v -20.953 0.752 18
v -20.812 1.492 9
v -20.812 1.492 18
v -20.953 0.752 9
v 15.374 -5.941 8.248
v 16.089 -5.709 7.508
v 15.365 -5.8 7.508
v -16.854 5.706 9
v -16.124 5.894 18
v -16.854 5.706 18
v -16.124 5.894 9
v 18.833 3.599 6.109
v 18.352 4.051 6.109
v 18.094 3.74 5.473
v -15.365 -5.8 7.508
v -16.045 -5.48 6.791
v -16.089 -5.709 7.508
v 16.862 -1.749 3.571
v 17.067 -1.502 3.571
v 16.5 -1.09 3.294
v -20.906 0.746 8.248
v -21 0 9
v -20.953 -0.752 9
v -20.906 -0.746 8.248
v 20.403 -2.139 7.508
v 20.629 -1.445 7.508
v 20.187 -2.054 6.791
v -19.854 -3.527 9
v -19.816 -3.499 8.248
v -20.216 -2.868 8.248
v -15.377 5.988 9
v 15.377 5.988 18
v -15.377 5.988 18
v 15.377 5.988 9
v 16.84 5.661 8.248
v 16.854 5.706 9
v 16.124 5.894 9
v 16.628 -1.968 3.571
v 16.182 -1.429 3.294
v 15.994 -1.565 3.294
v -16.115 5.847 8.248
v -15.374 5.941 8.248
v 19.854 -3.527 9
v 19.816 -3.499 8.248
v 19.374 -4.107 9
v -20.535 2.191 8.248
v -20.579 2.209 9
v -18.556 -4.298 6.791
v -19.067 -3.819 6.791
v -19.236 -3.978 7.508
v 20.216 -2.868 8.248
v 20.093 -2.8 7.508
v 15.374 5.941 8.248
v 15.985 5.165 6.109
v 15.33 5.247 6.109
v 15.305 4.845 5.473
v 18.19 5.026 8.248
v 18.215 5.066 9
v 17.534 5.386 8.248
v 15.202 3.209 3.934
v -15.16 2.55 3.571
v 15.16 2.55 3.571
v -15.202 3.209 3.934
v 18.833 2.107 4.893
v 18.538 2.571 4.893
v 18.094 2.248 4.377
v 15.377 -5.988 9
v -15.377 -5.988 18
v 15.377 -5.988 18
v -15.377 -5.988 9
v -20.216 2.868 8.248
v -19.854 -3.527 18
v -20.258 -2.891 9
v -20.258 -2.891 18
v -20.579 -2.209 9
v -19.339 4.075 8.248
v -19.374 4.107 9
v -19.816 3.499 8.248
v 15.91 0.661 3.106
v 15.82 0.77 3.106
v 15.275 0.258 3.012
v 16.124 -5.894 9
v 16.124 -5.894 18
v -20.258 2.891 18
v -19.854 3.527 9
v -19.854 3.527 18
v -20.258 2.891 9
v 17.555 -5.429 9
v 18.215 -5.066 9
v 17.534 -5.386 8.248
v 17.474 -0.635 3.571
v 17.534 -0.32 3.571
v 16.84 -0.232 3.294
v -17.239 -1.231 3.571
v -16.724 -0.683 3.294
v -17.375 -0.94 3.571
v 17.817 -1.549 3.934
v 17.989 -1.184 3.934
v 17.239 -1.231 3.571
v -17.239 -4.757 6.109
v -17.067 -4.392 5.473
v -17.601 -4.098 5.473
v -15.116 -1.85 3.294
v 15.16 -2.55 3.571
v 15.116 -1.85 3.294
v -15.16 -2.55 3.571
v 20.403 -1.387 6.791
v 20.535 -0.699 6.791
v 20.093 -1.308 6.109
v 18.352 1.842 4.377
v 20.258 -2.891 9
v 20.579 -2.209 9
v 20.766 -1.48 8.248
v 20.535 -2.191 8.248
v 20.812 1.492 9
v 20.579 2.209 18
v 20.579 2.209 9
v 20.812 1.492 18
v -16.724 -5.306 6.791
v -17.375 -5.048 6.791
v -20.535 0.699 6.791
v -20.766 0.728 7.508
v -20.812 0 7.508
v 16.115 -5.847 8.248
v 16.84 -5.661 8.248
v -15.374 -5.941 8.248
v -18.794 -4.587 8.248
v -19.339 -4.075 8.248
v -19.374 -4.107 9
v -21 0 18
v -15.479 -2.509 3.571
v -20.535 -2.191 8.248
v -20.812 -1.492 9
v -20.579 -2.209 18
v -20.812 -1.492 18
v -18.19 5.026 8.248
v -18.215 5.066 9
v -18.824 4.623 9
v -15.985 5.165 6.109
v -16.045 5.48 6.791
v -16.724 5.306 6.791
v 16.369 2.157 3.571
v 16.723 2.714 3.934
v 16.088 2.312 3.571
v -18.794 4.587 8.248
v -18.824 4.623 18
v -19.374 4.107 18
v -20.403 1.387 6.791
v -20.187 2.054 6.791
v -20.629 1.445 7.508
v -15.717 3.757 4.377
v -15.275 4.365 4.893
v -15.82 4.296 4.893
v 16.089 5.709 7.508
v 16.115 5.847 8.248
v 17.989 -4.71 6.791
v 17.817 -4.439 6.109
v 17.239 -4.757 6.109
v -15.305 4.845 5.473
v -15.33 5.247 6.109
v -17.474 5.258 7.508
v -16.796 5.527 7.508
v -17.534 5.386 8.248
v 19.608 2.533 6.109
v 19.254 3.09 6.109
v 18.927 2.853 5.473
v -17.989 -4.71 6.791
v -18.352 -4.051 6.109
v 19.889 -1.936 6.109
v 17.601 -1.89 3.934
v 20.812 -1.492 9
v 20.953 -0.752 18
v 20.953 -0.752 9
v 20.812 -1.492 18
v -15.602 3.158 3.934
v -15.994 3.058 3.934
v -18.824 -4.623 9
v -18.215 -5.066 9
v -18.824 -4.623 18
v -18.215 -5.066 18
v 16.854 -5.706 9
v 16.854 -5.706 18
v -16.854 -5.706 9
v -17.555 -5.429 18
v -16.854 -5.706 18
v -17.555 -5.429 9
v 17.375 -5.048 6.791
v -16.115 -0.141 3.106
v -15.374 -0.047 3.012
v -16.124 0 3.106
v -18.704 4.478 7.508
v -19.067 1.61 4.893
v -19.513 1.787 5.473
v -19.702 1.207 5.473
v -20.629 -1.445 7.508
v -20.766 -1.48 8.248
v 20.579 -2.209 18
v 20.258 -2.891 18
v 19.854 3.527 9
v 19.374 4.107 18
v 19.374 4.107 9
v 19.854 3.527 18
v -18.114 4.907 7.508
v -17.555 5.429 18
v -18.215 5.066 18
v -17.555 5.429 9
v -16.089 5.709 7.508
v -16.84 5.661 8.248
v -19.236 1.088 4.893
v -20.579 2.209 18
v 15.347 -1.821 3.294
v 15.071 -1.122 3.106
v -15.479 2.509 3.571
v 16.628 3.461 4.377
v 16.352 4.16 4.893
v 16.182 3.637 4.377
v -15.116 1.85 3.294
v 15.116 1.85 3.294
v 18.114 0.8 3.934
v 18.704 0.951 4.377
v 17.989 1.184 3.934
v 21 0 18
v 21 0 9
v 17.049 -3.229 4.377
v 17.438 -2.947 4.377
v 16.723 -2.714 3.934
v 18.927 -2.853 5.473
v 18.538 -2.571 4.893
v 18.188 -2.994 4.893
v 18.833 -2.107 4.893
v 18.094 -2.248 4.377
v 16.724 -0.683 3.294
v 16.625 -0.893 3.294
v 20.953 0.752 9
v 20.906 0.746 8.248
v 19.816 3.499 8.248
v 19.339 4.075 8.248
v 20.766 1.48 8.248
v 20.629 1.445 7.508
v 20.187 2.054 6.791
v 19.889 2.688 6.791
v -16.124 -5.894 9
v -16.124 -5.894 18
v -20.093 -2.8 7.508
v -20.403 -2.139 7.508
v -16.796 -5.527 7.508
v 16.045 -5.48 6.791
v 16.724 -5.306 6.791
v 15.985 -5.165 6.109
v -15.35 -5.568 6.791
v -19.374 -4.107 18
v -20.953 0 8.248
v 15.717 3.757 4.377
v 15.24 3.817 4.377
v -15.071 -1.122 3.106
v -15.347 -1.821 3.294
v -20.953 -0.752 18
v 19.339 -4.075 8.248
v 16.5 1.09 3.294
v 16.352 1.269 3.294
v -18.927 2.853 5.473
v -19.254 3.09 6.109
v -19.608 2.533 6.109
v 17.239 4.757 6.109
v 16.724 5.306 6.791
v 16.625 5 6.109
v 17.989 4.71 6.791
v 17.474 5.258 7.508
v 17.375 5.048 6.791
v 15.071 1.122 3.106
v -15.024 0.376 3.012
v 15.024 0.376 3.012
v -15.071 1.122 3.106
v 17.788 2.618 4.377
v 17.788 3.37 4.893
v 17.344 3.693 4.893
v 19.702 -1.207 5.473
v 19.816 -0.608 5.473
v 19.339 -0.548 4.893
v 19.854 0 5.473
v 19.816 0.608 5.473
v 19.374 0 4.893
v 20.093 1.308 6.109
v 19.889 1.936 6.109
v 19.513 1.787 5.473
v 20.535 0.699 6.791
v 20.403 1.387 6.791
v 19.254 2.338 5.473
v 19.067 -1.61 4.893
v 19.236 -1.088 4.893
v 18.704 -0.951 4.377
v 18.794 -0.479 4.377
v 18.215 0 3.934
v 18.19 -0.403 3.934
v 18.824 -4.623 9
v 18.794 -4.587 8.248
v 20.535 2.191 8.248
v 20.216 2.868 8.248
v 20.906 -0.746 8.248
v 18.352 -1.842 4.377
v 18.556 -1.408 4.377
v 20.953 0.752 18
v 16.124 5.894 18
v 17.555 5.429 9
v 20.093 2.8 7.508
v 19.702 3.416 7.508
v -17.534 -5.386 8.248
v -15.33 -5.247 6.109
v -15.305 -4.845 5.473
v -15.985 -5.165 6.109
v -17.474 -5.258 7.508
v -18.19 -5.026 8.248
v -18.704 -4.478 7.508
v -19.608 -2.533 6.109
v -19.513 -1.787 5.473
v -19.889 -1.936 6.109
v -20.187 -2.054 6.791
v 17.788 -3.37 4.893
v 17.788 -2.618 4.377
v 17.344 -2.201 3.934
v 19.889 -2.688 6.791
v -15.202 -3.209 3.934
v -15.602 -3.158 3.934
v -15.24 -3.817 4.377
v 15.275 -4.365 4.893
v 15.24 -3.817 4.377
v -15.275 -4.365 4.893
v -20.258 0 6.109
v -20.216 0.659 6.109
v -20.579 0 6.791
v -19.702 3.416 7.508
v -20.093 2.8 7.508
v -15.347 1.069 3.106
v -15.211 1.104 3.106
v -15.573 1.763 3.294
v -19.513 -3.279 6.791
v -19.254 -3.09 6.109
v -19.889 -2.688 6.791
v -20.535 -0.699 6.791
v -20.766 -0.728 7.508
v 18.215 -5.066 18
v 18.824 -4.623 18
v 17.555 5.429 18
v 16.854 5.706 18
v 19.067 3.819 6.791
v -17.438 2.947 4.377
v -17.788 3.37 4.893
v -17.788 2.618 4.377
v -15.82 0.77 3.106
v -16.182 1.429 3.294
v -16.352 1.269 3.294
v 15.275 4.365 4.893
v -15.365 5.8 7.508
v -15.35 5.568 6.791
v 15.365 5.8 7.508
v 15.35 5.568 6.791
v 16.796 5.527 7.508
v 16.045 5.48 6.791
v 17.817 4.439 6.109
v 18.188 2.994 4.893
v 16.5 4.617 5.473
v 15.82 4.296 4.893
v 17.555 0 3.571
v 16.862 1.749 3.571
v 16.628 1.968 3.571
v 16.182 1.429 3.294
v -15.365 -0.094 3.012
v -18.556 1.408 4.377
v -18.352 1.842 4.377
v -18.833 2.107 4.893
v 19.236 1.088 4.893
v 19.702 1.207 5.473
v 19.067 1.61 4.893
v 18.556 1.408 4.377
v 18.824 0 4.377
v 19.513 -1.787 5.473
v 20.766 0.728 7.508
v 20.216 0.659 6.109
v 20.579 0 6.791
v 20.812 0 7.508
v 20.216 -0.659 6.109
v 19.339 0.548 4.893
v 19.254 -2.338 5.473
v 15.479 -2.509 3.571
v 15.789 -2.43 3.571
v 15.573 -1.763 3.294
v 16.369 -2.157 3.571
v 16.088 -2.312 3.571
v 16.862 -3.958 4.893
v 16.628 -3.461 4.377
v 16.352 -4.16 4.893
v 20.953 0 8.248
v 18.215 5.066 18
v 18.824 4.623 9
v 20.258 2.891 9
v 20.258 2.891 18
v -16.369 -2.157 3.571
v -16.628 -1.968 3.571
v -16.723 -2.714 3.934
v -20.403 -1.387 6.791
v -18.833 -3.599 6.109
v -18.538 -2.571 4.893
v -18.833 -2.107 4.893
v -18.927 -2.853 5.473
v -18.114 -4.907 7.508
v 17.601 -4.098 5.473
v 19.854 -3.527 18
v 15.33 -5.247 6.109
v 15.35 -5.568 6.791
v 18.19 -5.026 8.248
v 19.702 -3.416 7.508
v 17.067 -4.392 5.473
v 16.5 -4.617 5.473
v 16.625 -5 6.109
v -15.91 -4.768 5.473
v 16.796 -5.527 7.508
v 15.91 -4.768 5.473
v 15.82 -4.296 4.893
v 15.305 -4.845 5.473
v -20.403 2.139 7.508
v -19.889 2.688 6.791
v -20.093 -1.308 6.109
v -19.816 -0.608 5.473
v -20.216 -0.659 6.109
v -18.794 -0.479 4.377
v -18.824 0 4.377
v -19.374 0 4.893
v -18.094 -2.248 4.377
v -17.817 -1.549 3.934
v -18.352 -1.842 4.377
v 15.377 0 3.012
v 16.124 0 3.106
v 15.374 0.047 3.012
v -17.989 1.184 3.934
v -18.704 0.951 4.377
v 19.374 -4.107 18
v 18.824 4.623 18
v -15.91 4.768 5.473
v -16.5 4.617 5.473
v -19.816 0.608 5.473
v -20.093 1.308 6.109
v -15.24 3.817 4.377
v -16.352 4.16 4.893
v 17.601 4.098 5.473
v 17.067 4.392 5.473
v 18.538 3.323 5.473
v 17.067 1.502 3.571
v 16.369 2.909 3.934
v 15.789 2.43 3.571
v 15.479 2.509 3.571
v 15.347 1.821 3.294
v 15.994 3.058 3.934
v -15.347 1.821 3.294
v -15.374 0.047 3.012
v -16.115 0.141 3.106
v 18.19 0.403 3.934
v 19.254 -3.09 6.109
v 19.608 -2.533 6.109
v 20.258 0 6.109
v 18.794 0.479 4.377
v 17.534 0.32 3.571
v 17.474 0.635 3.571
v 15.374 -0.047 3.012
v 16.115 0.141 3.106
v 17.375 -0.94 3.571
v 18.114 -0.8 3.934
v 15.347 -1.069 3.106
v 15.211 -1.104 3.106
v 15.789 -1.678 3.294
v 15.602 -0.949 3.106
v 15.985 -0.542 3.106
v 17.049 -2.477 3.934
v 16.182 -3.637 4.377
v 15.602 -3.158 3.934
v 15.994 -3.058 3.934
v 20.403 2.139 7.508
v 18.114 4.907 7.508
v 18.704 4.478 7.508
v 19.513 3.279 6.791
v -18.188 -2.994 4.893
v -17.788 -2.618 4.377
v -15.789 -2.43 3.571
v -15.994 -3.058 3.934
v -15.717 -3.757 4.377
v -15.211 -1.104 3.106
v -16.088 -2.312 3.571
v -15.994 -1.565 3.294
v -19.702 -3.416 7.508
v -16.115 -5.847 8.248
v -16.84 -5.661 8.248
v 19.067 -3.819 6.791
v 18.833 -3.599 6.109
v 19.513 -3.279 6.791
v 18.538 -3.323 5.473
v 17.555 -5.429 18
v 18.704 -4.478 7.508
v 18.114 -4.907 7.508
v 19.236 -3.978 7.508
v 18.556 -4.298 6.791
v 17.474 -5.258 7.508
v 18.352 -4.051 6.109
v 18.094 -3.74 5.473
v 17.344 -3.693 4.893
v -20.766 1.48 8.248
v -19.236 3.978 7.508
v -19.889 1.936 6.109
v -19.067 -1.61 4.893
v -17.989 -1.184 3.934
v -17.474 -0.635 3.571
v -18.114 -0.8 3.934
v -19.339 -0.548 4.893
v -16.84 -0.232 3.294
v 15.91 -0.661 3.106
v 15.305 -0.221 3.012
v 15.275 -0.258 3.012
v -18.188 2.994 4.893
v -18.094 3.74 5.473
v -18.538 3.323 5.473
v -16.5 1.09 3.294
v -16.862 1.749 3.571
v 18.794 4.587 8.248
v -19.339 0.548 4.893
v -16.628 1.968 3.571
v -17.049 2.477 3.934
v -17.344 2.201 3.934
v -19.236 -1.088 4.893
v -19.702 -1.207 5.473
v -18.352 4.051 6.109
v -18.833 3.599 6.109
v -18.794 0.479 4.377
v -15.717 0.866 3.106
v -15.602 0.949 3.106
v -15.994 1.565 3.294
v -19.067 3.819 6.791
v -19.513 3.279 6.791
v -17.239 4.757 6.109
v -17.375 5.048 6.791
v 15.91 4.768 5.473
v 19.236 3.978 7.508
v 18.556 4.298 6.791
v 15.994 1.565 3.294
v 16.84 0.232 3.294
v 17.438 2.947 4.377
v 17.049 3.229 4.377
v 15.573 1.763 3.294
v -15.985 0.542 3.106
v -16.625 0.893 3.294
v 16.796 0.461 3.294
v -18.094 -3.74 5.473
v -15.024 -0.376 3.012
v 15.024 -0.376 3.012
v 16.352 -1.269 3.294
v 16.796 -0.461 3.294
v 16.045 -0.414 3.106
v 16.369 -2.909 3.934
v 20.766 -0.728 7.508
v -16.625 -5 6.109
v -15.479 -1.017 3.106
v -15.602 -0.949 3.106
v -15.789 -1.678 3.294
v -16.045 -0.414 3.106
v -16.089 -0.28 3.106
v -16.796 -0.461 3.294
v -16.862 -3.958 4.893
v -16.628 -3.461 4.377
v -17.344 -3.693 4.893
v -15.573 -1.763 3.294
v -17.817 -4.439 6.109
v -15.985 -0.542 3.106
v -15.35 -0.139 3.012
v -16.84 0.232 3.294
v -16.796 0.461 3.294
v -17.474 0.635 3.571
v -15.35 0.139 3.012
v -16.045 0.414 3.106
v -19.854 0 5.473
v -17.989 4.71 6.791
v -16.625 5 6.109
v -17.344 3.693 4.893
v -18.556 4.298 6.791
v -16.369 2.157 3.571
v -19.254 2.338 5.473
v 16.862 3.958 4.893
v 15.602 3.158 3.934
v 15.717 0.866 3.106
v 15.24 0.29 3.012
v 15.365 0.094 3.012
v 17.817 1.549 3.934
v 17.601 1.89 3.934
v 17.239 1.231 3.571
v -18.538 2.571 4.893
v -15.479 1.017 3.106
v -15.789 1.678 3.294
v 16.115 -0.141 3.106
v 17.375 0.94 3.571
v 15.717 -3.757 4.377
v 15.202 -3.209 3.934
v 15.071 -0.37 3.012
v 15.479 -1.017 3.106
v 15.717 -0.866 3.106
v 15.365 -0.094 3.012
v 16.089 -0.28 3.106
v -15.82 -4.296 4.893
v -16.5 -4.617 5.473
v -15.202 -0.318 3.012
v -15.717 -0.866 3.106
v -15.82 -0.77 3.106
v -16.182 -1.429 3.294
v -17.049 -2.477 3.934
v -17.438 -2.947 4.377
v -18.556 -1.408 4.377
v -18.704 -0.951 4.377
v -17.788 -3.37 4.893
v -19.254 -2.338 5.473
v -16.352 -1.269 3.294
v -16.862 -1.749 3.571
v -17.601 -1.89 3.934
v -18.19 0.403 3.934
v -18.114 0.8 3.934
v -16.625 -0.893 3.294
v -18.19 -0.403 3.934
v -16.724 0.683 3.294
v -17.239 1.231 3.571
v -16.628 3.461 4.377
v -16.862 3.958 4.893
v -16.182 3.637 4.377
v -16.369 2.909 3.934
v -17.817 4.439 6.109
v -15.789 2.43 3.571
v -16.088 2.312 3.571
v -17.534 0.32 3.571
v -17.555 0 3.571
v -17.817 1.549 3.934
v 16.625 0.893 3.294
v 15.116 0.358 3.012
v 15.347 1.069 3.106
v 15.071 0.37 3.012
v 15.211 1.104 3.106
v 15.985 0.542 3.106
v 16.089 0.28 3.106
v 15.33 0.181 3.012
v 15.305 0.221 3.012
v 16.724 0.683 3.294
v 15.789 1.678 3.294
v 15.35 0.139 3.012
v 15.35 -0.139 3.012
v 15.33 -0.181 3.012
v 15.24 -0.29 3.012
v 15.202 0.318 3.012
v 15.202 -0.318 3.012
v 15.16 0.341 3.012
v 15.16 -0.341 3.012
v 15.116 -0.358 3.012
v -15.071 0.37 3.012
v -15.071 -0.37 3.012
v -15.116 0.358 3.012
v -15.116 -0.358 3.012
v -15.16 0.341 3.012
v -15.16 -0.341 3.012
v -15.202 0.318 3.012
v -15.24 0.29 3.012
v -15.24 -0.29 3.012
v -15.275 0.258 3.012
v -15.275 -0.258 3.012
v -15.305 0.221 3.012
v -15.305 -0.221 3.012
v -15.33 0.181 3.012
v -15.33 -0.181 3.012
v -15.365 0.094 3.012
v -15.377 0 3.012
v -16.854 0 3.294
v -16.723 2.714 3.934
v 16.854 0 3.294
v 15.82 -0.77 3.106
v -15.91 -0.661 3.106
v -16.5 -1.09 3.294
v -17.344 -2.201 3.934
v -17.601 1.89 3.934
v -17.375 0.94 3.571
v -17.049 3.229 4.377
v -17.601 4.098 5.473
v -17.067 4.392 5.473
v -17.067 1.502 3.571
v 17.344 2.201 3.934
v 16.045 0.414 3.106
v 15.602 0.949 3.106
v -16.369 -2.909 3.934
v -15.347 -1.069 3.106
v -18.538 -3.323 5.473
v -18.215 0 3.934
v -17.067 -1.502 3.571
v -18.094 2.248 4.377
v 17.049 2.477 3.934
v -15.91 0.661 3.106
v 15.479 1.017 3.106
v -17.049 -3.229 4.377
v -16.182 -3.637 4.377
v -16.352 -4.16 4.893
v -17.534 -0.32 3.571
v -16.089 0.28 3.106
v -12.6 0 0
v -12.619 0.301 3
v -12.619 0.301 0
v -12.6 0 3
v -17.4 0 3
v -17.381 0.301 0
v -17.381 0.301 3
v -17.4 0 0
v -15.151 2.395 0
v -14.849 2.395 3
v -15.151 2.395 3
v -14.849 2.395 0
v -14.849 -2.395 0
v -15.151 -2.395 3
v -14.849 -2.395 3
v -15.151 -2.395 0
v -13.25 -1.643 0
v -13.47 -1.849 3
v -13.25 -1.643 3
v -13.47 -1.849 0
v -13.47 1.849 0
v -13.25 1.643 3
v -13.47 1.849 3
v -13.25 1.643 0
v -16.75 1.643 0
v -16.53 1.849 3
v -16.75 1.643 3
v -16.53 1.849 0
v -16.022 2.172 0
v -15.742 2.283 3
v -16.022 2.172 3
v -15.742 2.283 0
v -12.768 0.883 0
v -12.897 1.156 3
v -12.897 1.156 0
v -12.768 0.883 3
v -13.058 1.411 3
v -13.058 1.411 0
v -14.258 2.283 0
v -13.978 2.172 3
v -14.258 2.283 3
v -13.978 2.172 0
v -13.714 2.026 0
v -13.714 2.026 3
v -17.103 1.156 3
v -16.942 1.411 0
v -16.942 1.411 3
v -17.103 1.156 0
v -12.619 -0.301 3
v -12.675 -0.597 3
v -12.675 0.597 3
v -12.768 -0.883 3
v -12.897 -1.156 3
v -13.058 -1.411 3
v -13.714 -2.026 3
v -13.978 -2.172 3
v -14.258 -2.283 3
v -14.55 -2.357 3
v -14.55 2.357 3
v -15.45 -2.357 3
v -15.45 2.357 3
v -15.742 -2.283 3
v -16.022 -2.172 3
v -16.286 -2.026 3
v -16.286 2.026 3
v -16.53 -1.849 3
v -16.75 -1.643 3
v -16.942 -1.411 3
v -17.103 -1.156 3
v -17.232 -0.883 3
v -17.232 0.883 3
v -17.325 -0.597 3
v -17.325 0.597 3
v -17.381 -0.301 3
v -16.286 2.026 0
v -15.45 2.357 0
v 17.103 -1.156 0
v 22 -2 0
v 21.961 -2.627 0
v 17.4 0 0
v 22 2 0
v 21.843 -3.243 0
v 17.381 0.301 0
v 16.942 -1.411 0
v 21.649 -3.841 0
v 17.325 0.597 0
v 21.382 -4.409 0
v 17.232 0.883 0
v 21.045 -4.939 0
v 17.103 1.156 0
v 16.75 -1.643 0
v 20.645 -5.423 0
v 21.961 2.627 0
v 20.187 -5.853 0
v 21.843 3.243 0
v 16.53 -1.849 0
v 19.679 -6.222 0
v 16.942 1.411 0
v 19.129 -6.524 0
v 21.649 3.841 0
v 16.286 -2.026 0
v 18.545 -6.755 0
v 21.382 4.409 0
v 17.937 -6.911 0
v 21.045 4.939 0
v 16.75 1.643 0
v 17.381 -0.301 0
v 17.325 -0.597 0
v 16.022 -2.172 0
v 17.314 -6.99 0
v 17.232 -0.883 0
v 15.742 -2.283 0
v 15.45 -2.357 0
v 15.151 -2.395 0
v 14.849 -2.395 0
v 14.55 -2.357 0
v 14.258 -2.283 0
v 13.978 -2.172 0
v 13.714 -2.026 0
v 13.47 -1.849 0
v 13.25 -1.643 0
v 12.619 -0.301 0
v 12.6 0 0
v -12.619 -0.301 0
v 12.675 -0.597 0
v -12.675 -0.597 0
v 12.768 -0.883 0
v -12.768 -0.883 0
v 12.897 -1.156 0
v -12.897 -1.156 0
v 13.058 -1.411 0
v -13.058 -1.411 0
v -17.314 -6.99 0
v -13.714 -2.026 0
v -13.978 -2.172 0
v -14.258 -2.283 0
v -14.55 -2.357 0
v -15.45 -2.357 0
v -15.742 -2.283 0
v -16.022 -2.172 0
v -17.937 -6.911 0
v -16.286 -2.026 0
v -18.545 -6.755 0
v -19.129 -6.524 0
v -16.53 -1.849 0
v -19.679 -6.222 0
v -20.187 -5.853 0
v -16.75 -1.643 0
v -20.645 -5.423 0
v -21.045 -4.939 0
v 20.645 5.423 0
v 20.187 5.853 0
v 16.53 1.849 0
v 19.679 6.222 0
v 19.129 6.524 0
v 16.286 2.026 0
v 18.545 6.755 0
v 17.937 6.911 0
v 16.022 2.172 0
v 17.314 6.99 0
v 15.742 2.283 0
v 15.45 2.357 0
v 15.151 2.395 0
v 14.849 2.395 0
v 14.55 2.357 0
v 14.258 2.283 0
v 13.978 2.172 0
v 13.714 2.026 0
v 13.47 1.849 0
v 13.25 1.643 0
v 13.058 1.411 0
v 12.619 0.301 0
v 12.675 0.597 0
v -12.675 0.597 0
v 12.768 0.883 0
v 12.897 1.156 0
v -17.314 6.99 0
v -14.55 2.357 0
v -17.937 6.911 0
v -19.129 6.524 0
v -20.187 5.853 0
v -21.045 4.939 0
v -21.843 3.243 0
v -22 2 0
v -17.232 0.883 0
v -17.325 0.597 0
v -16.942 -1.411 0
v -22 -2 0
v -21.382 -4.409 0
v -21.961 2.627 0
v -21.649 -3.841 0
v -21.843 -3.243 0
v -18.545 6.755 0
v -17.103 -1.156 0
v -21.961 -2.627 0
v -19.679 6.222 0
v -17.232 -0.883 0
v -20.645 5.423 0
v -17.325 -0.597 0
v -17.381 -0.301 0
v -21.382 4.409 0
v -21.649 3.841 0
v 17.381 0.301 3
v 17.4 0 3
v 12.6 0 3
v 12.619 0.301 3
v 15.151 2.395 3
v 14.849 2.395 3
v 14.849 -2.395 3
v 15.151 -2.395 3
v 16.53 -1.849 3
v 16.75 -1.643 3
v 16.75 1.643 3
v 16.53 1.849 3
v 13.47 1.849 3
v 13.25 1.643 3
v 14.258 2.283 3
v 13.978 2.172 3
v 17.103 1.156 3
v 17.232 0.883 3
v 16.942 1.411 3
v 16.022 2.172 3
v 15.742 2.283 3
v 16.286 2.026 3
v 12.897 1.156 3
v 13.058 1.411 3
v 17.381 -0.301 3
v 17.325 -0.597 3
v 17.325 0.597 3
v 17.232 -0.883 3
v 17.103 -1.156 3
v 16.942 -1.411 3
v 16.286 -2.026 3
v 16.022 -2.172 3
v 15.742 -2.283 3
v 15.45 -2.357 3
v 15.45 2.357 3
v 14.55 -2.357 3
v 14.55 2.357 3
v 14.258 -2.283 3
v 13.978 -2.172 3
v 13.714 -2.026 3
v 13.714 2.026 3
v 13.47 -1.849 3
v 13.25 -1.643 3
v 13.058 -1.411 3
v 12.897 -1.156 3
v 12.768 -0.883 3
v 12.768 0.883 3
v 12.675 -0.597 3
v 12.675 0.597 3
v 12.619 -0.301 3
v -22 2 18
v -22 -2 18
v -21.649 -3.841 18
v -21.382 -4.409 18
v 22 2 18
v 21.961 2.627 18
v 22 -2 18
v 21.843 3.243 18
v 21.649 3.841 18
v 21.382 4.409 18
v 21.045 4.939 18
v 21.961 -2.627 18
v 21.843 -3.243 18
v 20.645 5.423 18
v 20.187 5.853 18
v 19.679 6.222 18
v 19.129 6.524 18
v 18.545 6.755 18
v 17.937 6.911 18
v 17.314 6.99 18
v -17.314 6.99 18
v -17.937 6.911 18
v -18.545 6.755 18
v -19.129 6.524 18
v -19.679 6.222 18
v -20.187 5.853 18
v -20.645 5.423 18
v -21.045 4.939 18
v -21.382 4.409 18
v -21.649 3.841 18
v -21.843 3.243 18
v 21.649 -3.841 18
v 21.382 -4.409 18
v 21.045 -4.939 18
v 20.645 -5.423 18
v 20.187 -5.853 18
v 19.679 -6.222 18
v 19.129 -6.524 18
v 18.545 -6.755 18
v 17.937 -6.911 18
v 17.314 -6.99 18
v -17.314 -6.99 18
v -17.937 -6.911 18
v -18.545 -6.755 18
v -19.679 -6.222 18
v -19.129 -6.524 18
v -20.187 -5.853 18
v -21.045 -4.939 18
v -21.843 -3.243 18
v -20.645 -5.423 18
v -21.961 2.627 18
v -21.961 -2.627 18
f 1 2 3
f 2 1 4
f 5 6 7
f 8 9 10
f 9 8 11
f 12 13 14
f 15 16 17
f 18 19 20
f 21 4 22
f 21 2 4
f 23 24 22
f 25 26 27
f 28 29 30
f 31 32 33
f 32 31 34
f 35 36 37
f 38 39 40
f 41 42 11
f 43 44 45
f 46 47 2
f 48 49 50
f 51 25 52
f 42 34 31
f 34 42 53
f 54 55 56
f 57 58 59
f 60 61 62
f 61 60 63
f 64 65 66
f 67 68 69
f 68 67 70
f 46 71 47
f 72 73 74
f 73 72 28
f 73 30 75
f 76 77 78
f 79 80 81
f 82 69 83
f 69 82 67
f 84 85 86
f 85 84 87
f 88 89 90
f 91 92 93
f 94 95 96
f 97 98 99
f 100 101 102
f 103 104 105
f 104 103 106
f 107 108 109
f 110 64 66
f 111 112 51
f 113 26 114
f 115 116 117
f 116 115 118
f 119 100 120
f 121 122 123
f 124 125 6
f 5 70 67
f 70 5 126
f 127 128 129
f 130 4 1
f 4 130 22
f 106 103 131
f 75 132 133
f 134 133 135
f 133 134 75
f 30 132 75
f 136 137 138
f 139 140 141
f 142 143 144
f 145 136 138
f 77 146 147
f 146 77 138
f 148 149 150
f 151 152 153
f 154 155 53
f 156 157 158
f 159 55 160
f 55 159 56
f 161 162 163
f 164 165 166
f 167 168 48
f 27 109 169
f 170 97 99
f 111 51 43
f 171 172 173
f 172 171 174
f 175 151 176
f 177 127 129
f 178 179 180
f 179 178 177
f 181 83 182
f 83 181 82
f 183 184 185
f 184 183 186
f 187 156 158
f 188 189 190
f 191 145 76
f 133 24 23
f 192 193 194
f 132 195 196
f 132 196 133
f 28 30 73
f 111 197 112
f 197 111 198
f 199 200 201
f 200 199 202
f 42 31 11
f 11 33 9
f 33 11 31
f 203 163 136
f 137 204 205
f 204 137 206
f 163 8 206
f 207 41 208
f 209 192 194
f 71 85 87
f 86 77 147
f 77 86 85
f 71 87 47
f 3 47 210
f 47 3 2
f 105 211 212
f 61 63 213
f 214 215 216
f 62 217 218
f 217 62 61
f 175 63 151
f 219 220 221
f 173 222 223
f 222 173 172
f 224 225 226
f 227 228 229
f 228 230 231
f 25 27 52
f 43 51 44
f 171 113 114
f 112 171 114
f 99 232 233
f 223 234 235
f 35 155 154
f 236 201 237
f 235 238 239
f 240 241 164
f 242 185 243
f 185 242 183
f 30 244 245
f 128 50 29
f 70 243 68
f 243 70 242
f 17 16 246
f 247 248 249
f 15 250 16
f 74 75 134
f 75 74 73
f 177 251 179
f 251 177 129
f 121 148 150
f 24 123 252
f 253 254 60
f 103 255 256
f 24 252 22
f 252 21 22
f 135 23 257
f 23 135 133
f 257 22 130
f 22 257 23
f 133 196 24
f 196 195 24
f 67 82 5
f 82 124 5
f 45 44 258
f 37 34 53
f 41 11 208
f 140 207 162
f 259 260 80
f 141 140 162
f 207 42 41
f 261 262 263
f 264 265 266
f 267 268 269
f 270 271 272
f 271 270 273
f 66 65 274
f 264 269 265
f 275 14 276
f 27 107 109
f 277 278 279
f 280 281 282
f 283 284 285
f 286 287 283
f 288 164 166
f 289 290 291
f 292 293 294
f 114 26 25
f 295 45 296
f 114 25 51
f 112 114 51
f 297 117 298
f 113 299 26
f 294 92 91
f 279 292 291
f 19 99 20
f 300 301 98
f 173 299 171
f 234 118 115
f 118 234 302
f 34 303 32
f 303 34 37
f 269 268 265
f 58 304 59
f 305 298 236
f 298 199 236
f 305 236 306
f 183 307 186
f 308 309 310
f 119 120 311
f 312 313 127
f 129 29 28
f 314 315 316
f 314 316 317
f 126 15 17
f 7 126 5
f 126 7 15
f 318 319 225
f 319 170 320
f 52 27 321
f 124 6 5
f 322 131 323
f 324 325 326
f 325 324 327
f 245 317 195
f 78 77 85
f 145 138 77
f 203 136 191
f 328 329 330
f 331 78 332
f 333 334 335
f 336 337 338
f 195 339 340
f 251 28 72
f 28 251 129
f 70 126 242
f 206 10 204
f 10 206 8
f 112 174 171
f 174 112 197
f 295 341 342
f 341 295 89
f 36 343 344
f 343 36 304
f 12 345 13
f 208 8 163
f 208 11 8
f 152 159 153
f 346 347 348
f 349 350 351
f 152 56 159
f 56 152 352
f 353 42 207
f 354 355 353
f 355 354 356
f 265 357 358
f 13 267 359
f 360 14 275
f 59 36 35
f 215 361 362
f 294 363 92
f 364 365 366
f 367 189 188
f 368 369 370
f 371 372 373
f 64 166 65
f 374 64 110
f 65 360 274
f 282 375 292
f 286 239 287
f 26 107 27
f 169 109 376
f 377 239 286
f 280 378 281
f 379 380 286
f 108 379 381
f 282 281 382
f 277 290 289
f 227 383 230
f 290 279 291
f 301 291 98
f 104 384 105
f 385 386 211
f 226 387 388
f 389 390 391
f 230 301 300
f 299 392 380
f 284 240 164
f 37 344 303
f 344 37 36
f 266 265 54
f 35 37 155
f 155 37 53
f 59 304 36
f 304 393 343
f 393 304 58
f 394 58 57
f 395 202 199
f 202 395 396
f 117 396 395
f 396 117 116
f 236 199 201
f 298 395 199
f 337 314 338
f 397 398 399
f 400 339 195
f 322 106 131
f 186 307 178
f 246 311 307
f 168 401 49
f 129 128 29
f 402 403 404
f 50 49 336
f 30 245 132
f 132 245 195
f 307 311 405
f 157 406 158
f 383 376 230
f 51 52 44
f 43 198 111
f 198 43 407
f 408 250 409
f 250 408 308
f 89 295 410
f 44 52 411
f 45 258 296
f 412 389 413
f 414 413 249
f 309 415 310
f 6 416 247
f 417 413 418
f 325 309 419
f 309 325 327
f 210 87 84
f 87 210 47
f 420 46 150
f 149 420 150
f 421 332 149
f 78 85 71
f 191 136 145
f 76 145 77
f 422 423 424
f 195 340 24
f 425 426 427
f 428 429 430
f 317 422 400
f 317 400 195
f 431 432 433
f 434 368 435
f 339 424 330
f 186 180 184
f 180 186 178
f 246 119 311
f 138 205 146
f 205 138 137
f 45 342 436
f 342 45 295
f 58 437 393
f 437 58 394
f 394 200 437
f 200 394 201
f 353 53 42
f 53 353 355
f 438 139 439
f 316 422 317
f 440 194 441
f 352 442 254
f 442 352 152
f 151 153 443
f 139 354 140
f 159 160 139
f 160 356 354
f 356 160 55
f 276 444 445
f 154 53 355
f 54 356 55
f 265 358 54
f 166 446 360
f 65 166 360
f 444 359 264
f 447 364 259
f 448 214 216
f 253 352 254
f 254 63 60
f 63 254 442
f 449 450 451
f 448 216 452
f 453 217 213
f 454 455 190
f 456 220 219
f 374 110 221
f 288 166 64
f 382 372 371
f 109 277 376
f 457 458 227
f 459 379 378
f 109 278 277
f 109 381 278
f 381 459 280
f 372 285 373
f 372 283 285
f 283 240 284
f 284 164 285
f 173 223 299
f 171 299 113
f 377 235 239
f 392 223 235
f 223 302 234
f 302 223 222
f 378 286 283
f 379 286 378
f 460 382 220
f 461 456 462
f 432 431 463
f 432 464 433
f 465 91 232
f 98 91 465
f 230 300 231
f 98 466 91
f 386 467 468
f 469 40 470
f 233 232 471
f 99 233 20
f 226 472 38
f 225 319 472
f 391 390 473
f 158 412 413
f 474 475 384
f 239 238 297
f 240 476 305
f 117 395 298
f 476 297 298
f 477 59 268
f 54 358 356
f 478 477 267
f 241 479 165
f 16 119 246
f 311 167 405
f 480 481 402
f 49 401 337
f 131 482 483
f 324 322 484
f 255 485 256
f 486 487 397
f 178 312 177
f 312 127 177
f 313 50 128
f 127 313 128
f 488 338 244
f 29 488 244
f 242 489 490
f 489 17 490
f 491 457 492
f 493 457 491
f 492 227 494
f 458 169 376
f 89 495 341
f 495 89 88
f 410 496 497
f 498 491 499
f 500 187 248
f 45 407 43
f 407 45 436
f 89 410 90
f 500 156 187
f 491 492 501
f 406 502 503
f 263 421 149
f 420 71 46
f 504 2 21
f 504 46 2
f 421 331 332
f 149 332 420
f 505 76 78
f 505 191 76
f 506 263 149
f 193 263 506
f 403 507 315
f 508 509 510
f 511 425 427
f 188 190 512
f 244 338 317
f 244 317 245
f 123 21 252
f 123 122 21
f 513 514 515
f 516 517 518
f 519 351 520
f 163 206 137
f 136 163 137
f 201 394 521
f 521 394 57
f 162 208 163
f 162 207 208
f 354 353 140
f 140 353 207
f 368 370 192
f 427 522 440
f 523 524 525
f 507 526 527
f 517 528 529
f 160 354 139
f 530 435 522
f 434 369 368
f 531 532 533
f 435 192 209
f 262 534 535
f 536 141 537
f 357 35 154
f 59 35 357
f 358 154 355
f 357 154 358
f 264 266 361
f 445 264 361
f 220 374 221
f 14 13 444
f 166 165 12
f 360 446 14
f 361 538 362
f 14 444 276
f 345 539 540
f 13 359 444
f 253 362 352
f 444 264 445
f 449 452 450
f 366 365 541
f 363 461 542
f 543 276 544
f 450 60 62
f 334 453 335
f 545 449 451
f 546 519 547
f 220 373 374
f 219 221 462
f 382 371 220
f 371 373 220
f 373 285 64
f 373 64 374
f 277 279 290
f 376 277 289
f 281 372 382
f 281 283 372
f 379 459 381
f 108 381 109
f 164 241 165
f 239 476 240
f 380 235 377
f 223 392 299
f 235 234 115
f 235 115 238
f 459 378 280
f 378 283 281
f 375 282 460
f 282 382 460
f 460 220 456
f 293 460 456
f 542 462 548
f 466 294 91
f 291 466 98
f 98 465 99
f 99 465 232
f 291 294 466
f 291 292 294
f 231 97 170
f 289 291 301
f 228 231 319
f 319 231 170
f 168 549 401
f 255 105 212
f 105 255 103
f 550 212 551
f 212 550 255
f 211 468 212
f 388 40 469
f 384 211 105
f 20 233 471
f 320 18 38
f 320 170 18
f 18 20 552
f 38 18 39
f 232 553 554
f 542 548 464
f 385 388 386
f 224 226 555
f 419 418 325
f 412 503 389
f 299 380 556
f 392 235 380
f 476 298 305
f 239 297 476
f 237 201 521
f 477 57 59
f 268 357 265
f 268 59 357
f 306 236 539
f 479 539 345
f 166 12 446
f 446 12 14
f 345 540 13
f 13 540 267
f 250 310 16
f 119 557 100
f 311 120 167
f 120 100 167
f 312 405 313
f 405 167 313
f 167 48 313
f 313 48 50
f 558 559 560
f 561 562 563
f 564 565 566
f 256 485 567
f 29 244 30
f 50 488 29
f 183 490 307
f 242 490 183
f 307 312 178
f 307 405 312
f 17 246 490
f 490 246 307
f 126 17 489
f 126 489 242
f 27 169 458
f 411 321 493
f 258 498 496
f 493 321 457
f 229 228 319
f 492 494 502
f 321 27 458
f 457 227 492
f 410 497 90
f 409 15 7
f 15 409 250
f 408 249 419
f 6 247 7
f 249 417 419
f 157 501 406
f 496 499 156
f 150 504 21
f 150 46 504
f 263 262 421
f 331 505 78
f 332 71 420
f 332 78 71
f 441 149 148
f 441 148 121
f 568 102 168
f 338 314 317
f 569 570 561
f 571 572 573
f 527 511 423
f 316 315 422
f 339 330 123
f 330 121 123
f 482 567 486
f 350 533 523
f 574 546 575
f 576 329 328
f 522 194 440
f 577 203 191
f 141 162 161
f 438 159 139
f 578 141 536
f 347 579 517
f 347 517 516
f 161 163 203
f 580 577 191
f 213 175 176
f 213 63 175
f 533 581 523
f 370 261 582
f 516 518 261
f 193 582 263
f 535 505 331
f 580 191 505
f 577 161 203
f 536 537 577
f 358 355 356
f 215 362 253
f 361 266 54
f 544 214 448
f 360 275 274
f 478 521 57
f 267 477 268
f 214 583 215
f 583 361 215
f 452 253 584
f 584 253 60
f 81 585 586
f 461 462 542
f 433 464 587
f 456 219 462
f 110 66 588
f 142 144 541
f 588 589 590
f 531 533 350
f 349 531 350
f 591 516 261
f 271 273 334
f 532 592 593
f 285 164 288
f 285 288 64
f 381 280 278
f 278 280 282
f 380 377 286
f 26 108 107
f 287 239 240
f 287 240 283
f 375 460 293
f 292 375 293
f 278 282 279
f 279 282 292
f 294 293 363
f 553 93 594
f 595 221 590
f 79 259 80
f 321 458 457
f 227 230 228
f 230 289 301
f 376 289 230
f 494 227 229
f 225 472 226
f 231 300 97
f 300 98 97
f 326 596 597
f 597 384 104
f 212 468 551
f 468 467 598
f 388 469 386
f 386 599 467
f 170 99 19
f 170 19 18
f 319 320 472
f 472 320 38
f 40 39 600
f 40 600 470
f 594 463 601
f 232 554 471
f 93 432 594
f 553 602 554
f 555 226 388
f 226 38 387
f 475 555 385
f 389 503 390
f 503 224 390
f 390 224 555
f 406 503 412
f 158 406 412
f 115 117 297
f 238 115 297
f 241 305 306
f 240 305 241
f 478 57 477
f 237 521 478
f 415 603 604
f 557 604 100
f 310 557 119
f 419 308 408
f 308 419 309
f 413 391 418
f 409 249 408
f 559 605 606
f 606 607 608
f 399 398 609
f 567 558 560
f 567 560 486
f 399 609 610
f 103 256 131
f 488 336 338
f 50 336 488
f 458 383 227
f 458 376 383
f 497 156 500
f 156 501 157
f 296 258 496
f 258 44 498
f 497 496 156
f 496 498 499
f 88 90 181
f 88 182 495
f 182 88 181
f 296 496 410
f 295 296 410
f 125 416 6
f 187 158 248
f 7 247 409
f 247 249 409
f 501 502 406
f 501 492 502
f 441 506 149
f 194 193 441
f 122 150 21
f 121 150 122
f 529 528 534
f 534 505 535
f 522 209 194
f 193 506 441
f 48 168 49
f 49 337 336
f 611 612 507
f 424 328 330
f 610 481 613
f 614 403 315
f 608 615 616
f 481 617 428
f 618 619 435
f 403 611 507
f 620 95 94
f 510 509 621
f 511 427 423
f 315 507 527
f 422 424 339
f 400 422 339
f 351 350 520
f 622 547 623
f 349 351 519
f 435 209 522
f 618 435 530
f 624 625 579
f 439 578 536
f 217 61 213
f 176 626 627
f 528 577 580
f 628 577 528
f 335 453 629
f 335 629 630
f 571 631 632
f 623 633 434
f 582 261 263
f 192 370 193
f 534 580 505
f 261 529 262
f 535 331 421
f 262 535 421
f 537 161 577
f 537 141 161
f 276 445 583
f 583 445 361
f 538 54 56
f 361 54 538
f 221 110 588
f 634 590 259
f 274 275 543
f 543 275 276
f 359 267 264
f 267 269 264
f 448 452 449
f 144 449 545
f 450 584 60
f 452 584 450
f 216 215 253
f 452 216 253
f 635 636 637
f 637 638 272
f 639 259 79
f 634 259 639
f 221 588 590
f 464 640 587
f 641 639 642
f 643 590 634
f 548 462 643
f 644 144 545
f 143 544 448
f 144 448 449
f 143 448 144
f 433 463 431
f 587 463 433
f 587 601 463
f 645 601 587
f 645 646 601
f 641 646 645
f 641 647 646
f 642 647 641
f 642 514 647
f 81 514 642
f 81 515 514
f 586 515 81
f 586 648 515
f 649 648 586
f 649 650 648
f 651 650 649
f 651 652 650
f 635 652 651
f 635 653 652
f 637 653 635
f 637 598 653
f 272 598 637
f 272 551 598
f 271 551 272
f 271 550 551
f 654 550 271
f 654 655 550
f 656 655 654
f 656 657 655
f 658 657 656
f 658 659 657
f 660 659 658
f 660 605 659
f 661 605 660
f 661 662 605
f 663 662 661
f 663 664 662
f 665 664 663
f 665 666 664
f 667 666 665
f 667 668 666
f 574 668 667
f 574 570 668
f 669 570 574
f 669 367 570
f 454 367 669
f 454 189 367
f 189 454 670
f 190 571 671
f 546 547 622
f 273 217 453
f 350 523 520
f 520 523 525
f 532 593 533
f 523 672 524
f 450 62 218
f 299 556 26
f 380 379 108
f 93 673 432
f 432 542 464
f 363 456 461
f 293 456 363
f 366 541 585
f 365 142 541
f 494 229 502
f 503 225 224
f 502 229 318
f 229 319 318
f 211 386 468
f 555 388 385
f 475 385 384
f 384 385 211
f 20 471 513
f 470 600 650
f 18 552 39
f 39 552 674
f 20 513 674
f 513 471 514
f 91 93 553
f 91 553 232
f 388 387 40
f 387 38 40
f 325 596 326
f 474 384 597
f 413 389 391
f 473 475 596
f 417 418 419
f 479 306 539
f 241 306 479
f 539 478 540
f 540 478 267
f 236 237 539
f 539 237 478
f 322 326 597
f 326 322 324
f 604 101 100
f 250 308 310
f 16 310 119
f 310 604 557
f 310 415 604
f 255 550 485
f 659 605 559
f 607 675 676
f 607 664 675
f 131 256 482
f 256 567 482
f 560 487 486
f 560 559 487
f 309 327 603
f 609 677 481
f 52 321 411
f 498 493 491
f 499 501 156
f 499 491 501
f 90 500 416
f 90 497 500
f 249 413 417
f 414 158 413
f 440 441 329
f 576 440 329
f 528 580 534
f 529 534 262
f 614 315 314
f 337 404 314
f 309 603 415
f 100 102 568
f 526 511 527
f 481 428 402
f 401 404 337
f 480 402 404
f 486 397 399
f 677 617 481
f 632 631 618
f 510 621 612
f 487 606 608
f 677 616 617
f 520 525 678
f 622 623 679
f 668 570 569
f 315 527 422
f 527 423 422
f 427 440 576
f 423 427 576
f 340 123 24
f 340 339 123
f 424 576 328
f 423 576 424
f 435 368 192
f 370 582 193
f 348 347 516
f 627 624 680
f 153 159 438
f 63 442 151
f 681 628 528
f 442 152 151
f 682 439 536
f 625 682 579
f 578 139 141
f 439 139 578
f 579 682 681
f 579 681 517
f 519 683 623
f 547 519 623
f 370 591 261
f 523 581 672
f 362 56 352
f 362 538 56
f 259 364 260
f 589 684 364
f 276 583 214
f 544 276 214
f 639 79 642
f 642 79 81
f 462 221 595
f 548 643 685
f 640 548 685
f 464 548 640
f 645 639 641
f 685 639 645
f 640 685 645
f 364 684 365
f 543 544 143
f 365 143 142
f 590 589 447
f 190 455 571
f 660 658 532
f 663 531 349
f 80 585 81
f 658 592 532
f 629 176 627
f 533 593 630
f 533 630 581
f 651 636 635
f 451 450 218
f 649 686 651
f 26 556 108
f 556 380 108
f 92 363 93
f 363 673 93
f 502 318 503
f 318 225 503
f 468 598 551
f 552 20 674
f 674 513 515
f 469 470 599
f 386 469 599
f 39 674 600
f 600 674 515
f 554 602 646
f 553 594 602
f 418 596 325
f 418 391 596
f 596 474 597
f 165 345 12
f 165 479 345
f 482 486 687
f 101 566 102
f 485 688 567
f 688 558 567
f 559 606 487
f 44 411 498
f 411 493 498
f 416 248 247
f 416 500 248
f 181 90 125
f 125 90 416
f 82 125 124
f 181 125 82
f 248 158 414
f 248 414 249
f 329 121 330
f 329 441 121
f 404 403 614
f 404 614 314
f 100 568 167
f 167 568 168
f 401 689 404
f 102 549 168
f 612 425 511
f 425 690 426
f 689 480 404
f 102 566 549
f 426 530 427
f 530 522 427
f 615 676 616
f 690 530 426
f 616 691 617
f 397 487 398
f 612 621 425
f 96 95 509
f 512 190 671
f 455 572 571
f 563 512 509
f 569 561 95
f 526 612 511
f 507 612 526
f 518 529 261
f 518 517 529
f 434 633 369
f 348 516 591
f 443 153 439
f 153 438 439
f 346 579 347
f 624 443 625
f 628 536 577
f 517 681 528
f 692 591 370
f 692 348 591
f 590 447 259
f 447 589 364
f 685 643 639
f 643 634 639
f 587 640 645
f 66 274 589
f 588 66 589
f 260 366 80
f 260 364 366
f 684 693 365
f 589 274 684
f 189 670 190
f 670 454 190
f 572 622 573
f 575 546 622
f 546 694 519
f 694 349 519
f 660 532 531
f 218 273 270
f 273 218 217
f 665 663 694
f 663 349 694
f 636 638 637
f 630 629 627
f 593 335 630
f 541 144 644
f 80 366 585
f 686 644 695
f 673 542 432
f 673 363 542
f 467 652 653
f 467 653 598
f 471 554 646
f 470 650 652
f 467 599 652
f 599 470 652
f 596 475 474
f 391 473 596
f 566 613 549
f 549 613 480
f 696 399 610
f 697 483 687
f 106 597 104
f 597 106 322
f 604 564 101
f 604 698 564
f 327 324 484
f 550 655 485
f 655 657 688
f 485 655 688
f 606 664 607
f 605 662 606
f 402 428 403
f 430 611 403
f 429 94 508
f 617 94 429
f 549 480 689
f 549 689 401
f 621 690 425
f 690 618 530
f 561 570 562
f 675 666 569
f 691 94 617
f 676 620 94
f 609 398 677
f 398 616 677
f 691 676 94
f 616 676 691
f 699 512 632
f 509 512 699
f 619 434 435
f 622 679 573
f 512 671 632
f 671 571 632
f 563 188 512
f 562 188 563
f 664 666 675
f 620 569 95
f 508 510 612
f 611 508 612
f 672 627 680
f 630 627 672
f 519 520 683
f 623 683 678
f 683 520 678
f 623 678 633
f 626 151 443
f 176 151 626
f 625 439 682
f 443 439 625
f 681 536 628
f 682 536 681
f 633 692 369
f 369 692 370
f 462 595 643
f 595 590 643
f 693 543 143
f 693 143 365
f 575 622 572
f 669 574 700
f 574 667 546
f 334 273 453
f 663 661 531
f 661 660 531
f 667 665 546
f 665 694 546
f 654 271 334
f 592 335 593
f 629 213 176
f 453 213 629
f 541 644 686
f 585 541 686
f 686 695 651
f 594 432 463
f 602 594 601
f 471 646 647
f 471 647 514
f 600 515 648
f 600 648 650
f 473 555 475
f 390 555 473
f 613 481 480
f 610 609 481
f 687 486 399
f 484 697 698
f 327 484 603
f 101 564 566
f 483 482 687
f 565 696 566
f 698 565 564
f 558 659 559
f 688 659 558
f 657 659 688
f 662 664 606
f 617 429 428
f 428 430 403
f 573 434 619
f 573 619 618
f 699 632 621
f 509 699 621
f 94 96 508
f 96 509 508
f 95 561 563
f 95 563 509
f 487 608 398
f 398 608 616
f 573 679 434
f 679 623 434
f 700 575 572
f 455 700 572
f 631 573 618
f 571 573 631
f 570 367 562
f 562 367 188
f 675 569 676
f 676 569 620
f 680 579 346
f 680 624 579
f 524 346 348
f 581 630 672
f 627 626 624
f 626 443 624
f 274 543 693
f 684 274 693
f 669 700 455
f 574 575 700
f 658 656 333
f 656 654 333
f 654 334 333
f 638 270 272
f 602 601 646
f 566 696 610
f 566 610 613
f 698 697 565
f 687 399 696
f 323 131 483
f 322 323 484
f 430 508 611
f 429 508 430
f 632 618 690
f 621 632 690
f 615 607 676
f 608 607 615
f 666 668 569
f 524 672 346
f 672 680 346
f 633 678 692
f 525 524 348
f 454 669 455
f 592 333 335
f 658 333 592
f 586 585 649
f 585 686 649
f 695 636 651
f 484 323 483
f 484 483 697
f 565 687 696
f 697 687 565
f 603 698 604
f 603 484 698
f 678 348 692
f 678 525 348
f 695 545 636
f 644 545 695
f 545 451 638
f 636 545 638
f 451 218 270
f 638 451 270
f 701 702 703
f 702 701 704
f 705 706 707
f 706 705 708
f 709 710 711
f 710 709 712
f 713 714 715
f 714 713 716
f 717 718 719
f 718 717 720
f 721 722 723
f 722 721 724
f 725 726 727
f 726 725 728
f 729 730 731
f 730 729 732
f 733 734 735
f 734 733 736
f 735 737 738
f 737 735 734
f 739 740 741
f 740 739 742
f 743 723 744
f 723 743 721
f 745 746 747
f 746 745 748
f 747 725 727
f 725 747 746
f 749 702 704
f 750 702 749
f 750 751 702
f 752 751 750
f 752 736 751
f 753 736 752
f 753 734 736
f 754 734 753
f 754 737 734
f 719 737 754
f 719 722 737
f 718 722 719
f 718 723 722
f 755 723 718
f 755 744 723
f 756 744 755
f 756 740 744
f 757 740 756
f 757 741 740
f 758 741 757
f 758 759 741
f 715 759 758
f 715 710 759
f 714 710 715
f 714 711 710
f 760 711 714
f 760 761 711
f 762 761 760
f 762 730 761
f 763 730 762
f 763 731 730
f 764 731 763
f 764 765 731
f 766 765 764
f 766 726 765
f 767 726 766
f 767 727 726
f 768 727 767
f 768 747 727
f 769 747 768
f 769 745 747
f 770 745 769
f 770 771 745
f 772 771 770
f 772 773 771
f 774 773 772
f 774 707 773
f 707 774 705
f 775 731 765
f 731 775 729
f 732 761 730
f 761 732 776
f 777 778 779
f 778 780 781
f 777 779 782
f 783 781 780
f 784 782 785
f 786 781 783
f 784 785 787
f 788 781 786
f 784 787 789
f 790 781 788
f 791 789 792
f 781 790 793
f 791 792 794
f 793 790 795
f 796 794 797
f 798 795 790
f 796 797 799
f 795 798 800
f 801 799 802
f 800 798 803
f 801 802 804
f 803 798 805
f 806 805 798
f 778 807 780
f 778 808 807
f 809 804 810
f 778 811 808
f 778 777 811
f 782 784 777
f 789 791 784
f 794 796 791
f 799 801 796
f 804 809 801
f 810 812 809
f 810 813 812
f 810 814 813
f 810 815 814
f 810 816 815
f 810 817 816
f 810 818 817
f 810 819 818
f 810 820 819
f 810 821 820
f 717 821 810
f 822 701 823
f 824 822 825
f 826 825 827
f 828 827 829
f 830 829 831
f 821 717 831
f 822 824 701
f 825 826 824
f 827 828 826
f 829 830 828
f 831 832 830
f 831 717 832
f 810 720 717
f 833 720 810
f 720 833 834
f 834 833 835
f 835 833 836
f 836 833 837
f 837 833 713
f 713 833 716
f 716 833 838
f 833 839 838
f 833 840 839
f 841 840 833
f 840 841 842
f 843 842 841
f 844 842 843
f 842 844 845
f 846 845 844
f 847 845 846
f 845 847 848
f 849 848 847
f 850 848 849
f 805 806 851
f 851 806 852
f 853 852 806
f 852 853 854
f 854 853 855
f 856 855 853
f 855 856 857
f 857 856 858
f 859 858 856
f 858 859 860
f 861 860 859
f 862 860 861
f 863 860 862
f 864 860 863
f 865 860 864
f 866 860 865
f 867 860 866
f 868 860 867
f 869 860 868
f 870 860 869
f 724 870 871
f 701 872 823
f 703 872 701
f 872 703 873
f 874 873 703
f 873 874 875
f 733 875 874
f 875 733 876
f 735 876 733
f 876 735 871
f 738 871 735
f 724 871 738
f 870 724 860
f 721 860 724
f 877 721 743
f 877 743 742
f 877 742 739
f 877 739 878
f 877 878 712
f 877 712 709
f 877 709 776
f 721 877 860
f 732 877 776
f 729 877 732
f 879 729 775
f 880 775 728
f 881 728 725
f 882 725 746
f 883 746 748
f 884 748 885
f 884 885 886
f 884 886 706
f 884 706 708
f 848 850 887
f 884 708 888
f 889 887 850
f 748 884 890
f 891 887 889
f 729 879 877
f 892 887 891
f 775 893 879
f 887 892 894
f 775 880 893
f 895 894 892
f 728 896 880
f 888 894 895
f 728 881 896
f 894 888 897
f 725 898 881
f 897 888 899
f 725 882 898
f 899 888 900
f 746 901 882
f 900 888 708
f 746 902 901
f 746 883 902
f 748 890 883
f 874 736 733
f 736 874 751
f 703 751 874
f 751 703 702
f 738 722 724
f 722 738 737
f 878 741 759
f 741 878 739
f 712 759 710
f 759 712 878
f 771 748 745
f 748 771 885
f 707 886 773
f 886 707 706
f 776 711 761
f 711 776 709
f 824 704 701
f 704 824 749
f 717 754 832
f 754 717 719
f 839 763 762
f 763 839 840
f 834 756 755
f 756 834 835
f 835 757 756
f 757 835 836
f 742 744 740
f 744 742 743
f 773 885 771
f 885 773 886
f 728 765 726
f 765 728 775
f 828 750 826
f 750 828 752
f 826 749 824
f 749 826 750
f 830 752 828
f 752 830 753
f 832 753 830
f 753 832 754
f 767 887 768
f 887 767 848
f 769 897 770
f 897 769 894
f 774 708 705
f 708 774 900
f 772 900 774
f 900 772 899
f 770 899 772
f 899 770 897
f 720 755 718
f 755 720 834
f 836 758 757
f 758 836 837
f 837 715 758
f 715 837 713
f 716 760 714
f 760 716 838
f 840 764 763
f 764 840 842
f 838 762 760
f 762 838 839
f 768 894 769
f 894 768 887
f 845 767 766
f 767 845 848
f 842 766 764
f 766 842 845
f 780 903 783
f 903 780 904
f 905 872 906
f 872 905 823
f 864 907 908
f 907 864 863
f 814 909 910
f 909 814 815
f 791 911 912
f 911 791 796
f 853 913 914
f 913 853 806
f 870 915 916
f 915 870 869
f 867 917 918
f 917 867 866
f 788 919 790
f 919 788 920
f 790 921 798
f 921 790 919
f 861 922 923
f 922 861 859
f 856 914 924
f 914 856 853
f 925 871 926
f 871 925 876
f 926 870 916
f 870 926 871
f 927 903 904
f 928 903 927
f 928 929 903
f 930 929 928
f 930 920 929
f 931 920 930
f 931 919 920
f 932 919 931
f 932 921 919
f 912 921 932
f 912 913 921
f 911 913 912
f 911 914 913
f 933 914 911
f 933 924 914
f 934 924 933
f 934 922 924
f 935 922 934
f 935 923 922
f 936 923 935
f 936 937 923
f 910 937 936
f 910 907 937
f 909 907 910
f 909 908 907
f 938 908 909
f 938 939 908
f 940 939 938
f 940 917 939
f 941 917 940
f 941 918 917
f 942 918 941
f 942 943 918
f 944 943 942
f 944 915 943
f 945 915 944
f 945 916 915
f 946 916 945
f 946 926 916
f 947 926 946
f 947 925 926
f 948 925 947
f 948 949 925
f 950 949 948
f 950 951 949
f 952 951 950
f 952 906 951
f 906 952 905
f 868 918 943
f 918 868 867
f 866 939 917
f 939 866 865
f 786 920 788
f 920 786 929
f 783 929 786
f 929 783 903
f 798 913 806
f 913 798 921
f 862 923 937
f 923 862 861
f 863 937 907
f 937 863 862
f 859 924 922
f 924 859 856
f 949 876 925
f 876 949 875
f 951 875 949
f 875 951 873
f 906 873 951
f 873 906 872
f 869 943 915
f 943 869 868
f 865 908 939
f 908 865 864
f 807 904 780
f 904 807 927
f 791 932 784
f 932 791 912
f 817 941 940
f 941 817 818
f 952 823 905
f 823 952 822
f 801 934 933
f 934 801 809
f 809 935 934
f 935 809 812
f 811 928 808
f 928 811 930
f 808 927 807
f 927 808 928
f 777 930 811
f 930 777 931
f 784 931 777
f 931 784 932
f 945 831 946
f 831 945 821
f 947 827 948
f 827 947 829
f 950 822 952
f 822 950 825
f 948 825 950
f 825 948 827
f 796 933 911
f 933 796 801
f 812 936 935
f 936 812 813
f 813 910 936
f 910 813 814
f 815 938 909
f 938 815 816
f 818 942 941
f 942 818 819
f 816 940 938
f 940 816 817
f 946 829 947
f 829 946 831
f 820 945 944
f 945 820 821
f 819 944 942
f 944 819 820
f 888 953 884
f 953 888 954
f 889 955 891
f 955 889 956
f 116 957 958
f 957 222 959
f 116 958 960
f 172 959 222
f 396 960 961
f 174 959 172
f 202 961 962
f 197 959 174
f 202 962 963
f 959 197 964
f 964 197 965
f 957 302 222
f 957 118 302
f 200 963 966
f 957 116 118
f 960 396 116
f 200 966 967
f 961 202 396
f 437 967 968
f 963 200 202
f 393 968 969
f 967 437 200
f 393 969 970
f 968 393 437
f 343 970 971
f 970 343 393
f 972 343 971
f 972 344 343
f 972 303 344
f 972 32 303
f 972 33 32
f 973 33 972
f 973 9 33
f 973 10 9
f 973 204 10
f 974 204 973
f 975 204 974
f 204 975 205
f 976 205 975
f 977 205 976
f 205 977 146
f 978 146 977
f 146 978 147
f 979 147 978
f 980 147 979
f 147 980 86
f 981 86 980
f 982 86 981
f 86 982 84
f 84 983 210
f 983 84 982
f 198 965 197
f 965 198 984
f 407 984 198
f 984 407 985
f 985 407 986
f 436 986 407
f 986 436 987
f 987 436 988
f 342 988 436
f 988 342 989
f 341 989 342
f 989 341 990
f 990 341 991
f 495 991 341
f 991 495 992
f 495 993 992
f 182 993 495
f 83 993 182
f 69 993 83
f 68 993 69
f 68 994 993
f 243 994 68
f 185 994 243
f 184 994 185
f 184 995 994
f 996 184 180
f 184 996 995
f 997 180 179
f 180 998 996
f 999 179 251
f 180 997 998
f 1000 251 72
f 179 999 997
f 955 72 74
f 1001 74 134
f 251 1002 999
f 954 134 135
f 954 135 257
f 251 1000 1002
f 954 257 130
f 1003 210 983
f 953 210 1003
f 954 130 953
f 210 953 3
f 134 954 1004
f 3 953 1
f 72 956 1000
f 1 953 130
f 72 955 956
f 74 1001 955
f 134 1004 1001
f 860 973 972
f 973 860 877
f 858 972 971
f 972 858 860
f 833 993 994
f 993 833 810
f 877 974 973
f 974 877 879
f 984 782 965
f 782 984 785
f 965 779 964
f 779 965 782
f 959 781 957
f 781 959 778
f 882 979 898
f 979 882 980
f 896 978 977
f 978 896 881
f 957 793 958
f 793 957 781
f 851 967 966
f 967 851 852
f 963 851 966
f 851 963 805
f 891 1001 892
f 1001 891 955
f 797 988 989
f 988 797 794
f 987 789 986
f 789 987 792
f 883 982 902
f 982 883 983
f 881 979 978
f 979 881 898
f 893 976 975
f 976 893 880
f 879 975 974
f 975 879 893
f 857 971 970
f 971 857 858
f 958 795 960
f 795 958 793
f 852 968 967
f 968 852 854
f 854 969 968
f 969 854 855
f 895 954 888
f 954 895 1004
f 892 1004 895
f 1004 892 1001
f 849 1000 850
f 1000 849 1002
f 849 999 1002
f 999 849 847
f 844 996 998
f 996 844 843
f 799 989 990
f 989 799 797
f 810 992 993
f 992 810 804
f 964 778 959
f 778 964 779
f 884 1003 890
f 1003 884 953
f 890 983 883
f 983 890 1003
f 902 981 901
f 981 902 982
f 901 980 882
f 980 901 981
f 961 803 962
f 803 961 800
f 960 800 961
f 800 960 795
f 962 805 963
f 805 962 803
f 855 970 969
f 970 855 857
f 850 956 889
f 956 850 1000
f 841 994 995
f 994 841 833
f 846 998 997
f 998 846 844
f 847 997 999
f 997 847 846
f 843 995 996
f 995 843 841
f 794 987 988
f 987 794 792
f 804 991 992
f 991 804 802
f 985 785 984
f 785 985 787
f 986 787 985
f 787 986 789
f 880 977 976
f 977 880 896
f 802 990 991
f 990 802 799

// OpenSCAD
$fn = 50;


difference() {
	union() {
		translate(v = [0, 0, 0]) {
			rotate(a = [0, 0, 0]) {
				hull() {
					translate(v = [-17.0000000000, 2.0000000000, 0]) {
						rotate(a = [0, 0, 0]) {
							translate(v = [0, 0, 0]) {
								rotate(a = [0, 0, 0]) {
									cylinder(h = 18, r = 5);
								}
							}
						}
					}
					translate(v = [17.0000000000, 2.0000000000, 0]) {
						rotate(a = [0, 0, 0]) {
							translate(v = [0, 0, 0]) {
								rotate(a = [0, 0, 0]) {
									cylinder(h = 18, r = 5);
								}
							}
						}
					}
					translate(v = [-17.0000000000, -2.0000000000, 0]) {
						rotate(a = [0, 0, 0]) {
							translate(v = [0, 0, 0]) {
								rotate(a = [0, 0, 0]) {
									cylinder(h = 18, r = 5);
								}
							}
						}
					}
					translate(v = [17.0000000000, -2.0000000000, 0]) {
						rotate(a = [0, 0, 0]) {
							translate(v = [0, 0, 0]) {
								rotate(a = [0, 0, 0]) {
									cylinder(h = 18, r = 5);
								}
							}
						}
					}
				}
			}
		}
	}
	union() {
		translate(v = [0, 0, 3]) {
			rotate(a = [0, 0, 0]) {
				hull() {
					union() {
						translate(v = [-15.0000000000, 0.0000000000, 6]) {
							rotate(a = [0, 0, 0]) {
								translate(v = [0, 0, 0]) {
									rotate(a = [0, 0, 0]) {
										cylinder(h = 26, r = 6);
									}
								}
							}
						}
						translate(v = [-15.0000000000, 0.0000000000, 6]) {
							rotate(a = [0, 0, 0]) {
								sphere(r = 6);
							}
						}
						translate(v = [-15.0000000000, 0.0000000000, 32]) {
							rotate(a = [0, 0, 0]) {
								sphere(r = 6);
							}
						}
					}
					union() {
						translate(v = [15.0000000000, 0.0000000000, 6]) {
							rotate(a = [0, 0, 0]) {
								translate(v = [0, 0, 0]) {
									rotate(a = [0, 0, 0]) {
										cylinder(h = 26, r = 6);
									}
								}
							}
						}
						translate(v = [15.0000000000, 0.0000000000, 6]) {
							rotate(a = [0, 0, 0]) {
								sphere(r = 6);
							}
						}
						translate(v = [15.0000000000, 0.0000000000, 32]) {
							rotate(a = [0, 0, 0]) {
								sphere(r = 6);
							}
						}
					}
					union() {
						translate(v = [-15.0000000000, 0.0000000000, 6]) {
							rotate(a = [0, 0, 0]) {
								translate(v = [0, 0, 0]) {
									rotate(a = [0, 0, 0]) {
										cylinder(h = 26, r = 6);
									}
								}
							}
						}
						translate(v = [-15.0000000000, 0.0000000000, 6]) {
							rotate(a = [0, 0, 0]) {
								sphere(r = 6);
							}
						}
						translate(v = [-15.0000000000, 0.0000000000, 32]) {
							rotate(a = [0, 0, 0]) {
								sphere(r = 6);
							}
						}
					}
					union() {
						translate(v = [15.0000000000, 0.0000000000, 6]) {
							rotate(a = [0, 0, 0]) {
								translate(v = [0, 0, 0]) {
									rotate(a = [0, 0, 0]) {
										cylinder(h = 26, r = 6);
									}
								}
							}
						}
						translate(v = [15.0000000000, 0.0000000000, 6]) {
							rotate(a = [0, 0, 0]) {
								sphere(r = 6);
							}
						}
						translate(v = [15.0000000000, 0.0000000000, 32]) {
							rotate(a = [0, 0, 0]) {
								sphere(r = 6);
							}
						}
					}
				}
			}
		}
		translate(v = [-15.0000000000, 0.0000000000, 0]) {
			rotate(a = [0, 0, 0]) {
				cylinder(h = 3, r1 = 2.4000000000, r2 = 2.4000000000);
			}
		}
		translate(v = [-15.0000000000, 0.0000000000, -3]) {
			rotate(a = [0, 0, 0]) {
				cylinder(h = 6, r = 1.5000000000);
			}
		}
		translate(v = [15.0000000000, 0.0000000000, 0]) {
			rotate(a = [0, 0, 0]) {
				cylinder(h = 3, r1 = 2.4000000000, r2 = 2.4000000000);
			}
		}
		translate(v = [15.0000000000, 0.0000000000, -3]) {
			rotate(a = [0, 0, 0]) {
				cylinder(h = 6, r = 1.5000000000);
			}
		}
		translate(v = [-15.0000000000, 0.0000000000, 0]) {
			rotate(a = [0, 0, 0]) {
				cylinder(h = 3, r1 = 2.4000000000, r2 = 2.4000000000);
			}
		}
		translate(v = [-15.0000000000, 0.0000000000, -3]) {
			rotate(a = [0, 0, 0]) {
				cylinder(h = 6, r = 1.5000000000);
			}
		}
		translate(v = [15.0000000000, 0.0000000000, 0]) {
			rotate(a = [0, 0, 0]) {
				cylinder(h = 3, r1 = 2.4000000000, r2 = 2.4000000000);
			}
		}
		translate(v = [15.0000000000, 0.0000000000, -3]) {
			rotate(a = [0, 0, 0]) {
				cylinder(h = 6, r = 1.5000000000);
			}
		}
	}
}
